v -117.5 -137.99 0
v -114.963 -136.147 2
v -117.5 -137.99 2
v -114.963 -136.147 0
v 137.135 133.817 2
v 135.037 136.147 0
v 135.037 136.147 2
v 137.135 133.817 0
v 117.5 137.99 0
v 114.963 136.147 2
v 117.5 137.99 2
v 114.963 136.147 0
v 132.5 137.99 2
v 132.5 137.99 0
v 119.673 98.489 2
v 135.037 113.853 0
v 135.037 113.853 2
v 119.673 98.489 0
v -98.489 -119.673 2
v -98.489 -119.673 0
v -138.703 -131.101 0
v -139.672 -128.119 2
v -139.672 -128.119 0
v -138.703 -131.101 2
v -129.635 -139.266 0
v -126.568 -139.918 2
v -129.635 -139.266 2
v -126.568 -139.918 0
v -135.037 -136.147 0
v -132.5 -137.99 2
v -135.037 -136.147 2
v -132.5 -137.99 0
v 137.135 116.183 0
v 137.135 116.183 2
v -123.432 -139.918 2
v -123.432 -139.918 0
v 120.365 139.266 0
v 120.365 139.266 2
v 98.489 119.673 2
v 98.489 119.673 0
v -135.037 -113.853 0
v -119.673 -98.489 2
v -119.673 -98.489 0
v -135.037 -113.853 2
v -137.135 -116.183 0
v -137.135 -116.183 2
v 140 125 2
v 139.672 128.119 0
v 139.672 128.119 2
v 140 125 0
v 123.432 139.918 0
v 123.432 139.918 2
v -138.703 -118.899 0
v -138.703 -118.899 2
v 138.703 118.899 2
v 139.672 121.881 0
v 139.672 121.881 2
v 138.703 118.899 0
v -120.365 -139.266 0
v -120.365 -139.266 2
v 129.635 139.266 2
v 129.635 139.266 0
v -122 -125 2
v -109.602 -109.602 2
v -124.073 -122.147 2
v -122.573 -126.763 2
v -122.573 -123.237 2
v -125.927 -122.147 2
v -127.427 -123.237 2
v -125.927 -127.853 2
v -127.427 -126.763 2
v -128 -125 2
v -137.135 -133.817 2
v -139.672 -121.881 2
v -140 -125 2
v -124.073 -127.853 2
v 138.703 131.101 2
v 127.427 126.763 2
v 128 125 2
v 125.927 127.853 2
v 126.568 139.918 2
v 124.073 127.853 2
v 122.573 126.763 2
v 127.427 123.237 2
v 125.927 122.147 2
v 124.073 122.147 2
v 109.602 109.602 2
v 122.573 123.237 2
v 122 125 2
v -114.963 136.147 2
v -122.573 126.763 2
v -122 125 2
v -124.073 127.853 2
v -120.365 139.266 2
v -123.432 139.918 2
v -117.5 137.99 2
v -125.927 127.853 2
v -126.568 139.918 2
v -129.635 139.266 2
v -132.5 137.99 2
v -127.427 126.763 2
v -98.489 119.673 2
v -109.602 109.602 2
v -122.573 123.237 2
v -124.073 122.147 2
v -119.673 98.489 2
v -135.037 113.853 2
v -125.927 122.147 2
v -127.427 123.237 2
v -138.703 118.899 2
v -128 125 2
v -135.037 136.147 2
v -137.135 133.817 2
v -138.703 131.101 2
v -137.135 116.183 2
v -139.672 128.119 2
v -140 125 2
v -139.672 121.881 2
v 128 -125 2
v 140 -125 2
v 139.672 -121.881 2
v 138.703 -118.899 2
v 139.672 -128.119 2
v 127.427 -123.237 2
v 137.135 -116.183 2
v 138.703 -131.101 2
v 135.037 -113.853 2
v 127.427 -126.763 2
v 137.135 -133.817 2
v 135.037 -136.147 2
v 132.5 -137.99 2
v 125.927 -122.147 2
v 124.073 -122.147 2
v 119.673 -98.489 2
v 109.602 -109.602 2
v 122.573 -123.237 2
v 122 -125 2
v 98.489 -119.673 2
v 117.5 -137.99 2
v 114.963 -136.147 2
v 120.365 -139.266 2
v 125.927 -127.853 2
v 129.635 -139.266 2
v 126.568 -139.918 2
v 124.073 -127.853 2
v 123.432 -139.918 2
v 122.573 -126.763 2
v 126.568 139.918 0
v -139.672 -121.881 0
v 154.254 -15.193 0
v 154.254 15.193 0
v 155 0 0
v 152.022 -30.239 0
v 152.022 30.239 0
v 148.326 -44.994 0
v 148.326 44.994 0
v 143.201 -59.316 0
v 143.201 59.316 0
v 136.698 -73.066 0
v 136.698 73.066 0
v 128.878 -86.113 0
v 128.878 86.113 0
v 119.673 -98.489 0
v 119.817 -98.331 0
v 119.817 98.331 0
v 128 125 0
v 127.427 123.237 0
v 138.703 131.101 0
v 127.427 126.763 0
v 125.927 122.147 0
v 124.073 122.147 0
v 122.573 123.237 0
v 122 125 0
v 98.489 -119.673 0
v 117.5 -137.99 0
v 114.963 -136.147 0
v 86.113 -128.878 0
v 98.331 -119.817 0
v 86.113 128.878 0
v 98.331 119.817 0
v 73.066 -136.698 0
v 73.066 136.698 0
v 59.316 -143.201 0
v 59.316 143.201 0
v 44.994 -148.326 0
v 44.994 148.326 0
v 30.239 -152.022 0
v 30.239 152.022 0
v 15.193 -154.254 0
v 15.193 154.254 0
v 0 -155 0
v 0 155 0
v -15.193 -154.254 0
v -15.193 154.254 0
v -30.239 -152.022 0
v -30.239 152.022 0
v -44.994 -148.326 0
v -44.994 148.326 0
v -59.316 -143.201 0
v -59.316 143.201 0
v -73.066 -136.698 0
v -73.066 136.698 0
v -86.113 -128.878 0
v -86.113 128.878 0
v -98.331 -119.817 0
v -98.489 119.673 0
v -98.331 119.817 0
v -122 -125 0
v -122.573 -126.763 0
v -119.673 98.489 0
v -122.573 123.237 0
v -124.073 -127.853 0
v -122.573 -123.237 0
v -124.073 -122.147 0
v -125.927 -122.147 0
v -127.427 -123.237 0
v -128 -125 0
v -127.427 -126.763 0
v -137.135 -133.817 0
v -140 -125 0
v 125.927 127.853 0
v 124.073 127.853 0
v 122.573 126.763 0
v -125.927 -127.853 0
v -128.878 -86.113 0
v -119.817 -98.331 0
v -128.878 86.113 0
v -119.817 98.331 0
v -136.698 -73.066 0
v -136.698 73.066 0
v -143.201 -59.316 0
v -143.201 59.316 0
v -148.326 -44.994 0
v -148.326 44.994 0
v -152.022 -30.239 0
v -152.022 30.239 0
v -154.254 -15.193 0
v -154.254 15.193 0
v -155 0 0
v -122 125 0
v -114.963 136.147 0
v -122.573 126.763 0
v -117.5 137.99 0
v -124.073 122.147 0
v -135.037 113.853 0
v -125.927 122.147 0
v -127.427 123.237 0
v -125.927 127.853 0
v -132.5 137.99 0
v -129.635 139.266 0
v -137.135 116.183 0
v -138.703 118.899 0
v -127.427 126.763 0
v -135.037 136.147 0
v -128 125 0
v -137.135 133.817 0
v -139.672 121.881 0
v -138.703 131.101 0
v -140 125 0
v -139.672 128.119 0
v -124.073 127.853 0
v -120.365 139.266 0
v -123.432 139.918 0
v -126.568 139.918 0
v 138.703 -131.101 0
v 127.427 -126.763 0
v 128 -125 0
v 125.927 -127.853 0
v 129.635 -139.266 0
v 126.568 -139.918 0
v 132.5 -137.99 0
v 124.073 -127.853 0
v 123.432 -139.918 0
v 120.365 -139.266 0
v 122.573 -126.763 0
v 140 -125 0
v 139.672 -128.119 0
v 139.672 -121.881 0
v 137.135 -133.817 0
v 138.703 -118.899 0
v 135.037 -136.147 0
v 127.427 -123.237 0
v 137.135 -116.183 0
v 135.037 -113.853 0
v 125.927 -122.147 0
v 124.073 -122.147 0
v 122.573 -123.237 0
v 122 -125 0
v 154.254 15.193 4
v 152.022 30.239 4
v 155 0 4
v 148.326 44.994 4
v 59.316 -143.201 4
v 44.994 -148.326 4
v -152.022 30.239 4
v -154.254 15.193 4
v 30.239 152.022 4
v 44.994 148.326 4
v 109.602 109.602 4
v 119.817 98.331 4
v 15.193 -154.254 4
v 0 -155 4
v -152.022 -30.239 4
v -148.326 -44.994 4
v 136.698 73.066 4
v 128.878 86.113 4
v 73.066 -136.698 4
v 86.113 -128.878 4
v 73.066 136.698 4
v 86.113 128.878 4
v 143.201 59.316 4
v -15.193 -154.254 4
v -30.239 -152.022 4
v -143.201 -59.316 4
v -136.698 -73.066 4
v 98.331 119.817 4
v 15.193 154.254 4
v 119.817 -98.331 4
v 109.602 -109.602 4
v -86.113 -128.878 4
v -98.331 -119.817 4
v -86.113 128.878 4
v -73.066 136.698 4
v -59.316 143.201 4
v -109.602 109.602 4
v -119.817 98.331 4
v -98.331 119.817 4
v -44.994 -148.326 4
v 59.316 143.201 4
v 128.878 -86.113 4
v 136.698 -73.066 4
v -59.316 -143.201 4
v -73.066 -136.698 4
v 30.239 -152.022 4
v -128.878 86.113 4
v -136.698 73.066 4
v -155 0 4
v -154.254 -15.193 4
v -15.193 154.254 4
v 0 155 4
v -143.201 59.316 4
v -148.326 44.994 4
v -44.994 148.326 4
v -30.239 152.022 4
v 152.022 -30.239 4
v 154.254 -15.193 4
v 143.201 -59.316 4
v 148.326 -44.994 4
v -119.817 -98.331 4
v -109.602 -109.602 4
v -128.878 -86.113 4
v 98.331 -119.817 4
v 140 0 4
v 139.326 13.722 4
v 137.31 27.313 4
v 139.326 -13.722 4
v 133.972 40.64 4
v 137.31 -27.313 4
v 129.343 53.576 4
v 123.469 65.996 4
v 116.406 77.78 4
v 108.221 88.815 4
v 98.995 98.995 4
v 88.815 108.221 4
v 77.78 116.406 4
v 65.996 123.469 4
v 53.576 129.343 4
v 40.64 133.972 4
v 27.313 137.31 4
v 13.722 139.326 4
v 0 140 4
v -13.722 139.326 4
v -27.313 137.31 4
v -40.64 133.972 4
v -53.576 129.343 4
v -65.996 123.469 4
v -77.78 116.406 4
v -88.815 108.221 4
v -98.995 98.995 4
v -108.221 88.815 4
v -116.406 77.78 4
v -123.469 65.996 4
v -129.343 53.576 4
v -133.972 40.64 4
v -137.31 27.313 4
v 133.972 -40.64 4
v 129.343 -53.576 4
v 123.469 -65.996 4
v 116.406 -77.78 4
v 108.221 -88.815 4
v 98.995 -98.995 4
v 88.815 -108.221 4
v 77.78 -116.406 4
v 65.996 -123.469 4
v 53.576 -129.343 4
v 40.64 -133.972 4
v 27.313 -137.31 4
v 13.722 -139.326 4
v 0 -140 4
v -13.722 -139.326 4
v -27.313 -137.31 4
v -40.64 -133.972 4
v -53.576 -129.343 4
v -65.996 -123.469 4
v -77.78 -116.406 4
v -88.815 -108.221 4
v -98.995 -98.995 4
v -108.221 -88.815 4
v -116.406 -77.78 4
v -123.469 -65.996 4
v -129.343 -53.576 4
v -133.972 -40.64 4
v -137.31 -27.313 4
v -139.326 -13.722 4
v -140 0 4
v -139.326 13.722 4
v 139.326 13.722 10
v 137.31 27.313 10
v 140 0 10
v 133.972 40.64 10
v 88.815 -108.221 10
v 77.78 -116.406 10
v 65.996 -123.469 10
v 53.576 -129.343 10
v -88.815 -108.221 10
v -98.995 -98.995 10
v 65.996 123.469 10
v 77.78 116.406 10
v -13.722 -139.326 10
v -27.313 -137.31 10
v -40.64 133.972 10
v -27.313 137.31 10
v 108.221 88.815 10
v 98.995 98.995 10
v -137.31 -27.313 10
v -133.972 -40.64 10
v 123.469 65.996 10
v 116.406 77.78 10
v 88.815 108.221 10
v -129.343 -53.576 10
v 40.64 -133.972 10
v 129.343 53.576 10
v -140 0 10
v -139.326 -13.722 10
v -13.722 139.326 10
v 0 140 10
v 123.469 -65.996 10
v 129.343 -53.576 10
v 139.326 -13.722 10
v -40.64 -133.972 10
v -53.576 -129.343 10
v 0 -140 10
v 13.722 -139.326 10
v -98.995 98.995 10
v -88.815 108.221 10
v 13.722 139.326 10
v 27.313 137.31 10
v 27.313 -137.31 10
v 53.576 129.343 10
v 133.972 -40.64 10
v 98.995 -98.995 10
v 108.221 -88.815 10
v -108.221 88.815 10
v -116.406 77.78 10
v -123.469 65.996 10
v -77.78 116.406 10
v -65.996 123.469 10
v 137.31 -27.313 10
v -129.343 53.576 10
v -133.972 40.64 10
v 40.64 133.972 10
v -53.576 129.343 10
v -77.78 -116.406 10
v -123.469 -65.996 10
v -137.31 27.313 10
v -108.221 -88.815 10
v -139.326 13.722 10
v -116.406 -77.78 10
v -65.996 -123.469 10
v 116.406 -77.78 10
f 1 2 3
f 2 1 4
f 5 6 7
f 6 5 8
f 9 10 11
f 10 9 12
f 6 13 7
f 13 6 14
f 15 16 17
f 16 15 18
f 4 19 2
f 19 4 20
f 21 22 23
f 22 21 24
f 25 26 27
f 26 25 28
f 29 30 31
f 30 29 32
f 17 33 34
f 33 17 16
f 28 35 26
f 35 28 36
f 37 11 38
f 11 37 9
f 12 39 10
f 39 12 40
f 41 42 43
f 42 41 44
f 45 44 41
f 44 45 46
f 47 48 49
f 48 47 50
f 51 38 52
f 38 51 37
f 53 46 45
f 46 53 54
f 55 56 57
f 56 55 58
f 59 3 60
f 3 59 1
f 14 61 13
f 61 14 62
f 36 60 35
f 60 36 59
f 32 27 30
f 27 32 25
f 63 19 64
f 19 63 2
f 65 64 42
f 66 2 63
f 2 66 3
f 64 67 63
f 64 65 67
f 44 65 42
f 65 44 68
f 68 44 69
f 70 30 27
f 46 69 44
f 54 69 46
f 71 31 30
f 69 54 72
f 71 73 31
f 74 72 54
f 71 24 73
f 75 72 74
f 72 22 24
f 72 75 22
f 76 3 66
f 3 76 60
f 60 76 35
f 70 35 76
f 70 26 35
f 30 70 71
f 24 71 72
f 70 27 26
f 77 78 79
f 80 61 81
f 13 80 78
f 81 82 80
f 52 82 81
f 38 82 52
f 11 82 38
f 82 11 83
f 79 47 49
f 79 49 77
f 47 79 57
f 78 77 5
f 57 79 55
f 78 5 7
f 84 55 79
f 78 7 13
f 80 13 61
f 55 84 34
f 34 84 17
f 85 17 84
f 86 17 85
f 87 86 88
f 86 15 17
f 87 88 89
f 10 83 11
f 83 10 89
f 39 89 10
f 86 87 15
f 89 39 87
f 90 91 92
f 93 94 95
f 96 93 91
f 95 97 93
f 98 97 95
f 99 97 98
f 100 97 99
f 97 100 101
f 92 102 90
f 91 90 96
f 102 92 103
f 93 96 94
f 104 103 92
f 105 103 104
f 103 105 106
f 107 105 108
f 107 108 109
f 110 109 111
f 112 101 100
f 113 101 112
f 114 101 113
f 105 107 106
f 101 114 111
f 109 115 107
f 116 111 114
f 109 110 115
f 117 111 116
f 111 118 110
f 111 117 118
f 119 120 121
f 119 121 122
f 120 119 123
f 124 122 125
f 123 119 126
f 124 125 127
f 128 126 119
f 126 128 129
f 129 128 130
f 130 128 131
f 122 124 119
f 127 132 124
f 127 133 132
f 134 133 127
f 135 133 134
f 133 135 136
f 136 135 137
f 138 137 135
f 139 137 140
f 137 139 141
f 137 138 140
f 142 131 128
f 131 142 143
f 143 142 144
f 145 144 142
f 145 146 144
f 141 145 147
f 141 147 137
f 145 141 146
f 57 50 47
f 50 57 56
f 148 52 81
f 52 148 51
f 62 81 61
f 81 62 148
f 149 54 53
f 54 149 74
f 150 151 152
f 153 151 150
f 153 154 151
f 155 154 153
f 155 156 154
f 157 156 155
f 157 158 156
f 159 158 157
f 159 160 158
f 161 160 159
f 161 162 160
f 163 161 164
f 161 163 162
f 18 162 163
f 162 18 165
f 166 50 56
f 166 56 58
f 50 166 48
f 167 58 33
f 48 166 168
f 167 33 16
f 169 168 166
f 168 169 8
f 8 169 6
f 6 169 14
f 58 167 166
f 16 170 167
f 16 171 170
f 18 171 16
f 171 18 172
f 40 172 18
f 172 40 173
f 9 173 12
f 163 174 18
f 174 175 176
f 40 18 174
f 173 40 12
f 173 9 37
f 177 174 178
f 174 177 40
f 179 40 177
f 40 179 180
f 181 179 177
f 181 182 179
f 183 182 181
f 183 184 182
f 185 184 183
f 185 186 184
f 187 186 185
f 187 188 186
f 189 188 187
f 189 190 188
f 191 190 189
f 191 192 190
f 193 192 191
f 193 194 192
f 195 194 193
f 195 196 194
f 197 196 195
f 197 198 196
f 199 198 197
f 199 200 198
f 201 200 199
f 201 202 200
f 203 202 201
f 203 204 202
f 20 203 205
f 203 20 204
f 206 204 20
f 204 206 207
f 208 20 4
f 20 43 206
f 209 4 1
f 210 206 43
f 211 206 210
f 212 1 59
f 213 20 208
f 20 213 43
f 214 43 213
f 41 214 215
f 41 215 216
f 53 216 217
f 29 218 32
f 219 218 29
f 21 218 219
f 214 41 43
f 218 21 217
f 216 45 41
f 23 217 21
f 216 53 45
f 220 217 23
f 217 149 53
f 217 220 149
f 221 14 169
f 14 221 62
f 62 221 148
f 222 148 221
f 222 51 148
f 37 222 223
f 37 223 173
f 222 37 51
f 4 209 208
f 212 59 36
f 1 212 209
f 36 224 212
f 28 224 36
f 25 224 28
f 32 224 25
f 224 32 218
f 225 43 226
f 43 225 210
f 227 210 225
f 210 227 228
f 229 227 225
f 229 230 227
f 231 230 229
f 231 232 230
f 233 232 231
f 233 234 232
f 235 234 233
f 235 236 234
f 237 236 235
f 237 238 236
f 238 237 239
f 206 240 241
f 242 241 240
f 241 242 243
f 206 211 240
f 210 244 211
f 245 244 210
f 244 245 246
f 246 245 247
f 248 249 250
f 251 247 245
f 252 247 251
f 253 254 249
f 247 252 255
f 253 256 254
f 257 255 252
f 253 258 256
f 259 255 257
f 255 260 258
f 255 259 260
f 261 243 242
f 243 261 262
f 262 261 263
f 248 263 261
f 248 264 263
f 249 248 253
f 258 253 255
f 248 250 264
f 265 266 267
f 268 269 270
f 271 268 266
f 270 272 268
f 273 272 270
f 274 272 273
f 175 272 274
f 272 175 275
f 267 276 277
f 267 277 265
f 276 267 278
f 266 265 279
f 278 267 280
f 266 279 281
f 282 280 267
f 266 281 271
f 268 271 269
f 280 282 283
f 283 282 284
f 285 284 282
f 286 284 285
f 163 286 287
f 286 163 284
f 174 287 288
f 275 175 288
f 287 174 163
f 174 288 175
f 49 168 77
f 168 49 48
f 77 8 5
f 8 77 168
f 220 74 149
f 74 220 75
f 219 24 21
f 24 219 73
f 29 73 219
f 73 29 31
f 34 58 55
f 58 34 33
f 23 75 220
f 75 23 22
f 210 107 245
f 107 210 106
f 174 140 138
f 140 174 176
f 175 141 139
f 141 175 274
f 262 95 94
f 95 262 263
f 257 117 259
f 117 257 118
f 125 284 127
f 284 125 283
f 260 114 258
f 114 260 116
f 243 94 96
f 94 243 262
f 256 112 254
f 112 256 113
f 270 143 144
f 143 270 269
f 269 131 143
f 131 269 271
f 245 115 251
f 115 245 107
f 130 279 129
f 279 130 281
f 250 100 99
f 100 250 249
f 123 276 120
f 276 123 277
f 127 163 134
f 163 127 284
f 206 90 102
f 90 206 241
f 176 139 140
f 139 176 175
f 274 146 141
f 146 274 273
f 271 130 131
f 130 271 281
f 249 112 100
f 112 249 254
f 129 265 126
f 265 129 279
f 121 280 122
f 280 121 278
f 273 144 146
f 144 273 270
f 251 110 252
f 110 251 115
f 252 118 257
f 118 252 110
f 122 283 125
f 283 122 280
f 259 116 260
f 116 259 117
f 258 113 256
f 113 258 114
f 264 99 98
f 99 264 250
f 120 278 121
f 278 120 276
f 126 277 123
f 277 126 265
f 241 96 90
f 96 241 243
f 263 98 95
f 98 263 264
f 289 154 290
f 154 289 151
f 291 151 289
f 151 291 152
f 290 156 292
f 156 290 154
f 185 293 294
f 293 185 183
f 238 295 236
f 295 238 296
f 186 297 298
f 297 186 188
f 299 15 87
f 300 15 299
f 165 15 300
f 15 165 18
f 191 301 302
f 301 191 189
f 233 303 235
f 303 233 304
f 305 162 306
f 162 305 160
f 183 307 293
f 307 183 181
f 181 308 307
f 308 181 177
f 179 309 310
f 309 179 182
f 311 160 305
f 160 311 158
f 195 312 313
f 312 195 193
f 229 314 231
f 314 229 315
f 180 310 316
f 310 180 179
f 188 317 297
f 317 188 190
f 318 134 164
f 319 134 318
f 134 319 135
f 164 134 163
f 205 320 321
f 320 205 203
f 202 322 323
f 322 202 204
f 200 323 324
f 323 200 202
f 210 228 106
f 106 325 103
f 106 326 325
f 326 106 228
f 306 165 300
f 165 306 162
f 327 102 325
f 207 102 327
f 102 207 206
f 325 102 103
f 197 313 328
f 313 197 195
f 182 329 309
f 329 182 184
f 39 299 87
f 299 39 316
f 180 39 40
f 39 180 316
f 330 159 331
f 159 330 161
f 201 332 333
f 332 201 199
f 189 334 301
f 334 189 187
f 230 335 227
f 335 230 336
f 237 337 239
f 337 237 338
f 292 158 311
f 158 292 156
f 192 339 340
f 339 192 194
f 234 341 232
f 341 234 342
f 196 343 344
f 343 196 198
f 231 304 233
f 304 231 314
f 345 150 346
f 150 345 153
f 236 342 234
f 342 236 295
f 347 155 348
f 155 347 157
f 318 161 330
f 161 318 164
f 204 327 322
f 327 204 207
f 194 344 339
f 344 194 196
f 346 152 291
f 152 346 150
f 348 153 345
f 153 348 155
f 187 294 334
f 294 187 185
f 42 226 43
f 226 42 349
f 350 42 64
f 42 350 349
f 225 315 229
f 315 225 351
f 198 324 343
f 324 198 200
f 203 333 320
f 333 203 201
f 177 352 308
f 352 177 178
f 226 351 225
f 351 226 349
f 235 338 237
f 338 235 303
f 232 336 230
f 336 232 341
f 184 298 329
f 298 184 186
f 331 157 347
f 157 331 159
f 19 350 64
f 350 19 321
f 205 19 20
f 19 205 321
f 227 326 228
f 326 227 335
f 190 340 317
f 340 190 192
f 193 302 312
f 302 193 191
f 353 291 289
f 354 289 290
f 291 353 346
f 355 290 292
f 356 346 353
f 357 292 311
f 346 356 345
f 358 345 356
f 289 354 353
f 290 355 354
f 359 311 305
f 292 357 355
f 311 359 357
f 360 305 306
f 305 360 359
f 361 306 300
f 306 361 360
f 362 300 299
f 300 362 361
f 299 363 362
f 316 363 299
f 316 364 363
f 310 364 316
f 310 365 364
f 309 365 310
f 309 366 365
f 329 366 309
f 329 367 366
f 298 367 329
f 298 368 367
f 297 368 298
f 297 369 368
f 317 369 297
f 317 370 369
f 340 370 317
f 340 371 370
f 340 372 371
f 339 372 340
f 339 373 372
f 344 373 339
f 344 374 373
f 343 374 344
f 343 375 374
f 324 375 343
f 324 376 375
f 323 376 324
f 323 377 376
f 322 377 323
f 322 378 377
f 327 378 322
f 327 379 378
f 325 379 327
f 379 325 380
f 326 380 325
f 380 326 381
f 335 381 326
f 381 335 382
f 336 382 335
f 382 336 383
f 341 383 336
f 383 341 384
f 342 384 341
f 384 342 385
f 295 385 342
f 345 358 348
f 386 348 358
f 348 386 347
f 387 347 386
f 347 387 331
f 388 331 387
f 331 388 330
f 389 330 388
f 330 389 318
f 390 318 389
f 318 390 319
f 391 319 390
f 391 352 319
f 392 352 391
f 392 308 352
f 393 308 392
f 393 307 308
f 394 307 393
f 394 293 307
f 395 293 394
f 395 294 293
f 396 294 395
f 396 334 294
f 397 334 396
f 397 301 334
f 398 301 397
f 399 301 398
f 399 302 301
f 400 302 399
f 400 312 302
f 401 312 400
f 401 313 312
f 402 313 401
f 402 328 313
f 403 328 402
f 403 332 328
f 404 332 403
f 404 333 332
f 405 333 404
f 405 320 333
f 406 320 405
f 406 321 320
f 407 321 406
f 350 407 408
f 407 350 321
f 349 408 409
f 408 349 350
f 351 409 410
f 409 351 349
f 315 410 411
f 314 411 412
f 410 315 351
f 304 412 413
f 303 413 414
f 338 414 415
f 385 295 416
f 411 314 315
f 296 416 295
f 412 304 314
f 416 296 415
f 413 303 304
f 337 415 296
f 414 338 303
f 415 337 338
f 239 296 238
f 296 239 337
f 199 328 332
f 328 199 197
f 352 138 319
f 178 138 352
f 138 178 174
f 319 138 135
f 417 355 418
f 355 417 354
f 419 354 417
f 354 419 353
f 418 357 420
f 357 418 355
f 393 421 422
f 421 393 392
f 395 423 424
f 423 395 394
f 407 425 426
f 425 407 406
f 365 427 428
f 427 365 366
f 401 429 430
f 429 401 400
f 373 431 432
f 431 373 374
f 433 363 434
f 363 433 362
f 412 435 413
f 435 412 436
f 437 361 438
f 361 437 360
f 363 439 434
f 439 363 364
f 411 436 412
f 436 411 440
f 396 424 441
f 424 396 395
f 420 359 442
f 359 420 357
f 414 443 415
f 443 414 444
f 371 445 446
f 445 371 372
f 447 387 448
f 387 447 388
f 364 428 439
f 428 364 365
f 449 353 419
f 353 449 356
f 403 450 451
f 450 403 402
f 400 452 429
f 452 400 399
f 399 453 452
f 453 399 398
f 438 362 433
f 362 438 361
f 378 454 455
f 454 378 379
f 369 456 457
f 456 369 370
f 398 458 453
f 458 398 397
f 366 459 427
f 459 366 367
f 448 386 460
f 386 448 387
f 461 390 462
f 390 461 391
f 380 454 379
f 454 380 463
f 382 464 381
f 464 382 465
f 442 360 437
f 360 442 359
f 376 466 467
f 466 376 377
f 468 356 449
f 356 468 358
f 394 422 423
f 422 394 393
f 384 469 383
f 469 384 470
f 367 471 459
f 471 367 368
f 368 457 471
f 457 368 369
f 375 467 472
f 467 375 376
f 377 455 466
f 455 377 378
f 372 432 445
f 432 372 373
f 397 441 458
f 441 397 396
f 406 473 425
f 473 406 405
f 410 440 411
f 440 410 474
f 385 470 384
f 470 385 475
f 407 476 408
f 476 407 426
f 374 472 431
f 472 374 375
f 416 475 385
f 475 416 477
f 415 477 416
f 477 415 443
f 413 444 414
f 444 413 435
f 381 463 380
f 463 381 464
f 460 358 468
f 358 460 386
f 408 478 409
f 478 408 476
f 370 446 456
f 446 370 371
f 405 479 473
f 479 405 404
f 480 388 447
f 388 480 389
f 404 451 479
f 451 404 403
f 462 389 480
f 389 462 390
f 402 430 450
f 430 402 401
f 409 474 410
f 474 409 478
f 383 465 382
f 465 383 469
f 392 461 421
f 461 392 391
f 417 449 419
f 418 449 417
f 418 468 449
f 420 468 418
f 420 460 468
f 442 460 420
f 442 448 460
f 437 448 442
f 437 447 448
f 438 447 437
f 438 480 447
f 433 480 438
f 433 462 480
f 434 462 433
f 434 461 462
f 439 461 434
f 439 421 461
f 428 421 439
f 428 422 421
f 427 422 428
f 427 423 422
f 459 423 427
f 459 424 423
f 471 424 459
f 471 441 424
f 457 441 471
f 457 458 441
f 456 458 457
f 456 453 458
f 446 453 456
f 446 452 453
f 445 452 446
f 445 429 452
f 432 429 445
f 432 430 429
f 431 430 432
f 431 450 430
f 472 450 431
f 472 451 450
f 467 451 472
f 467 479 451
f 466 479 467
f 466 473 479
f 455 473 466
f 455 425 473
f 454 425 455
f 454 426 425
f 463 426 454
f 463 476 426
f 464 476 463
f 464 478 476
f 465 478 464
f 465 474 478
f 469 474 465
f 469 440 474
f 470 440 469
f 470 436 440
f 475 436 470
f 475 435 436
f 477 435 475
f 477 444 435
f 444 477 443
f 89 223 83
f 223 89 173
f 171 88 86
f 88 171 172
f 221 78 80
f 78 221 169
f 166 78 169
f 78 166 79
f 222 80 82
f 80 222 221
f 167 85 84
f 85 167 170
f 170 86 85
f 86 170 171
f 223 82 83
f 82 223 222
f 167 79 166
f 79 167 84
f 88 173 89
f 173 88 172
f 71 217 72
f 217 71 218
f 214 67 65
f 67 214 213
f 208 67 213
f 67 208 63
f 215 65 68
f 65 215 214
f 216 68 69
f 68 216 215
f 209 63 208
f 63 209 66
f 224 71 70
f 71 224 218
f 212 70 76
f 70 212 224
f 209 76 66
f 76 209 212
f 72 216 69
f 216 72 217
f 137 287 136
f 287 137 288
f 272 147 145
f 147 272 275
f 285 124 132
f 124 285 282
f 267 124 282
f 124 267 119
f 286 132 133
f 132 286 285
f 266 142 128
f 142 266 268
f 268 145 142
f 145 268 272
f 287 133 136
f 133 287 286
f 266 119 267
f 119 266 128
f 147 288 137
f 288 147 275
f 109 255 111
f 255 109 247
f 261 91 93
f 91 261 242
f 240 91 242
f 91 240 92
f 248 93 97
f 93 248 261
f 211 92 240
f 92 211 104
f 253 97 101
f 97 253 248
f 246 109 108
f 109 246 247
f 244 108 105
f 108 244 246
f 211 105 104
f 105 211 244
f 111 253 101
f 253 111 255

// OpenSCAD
// This is an initial design for the front window
// for the BornHack StopNu light.
// Z dimension is only indicative to show the
// three construction elements
// X and Y dimensions are exact.
//
difference () {
    union() {
 // mounting tab upper right + lower left
        hull() {
            translate([125, 125, 0]) {
                cylinder(h=2, r=15);
            }
            translate([-125, -125, 0]) {
                cylinder(h=2, r=15);
            }
        }
 // mounting tab upper left + lower right       
        hull () {
            translate([125, -125, 0]) {
                cylinder(h=2, r=15);
            }
            translate([-125, 125, 0]) {
                cylinder(h=2, r=15);
            }
        }
 // front glass, diameter 280mm
        cylinder(h=10, r=140, $fn=64);
 // sealing lip, diameter 310mm       
        cylinder(h=4, r=155, $fn=64);
    }
 // holes in mounting tabs for M6 bolts    
    translate([125, 125, -5]) {
        cylinder(h=10, r=3);
    }
    translate([-125, -125, -5]) {
        cylinder(h=10, r=3);
    }
    translate([125, -125, -5]) {
        cylinder(h=10, r=3);
    }
    translate([-125, 125, -5]) {
        cylinder(h=10, r=3);
    }
}
